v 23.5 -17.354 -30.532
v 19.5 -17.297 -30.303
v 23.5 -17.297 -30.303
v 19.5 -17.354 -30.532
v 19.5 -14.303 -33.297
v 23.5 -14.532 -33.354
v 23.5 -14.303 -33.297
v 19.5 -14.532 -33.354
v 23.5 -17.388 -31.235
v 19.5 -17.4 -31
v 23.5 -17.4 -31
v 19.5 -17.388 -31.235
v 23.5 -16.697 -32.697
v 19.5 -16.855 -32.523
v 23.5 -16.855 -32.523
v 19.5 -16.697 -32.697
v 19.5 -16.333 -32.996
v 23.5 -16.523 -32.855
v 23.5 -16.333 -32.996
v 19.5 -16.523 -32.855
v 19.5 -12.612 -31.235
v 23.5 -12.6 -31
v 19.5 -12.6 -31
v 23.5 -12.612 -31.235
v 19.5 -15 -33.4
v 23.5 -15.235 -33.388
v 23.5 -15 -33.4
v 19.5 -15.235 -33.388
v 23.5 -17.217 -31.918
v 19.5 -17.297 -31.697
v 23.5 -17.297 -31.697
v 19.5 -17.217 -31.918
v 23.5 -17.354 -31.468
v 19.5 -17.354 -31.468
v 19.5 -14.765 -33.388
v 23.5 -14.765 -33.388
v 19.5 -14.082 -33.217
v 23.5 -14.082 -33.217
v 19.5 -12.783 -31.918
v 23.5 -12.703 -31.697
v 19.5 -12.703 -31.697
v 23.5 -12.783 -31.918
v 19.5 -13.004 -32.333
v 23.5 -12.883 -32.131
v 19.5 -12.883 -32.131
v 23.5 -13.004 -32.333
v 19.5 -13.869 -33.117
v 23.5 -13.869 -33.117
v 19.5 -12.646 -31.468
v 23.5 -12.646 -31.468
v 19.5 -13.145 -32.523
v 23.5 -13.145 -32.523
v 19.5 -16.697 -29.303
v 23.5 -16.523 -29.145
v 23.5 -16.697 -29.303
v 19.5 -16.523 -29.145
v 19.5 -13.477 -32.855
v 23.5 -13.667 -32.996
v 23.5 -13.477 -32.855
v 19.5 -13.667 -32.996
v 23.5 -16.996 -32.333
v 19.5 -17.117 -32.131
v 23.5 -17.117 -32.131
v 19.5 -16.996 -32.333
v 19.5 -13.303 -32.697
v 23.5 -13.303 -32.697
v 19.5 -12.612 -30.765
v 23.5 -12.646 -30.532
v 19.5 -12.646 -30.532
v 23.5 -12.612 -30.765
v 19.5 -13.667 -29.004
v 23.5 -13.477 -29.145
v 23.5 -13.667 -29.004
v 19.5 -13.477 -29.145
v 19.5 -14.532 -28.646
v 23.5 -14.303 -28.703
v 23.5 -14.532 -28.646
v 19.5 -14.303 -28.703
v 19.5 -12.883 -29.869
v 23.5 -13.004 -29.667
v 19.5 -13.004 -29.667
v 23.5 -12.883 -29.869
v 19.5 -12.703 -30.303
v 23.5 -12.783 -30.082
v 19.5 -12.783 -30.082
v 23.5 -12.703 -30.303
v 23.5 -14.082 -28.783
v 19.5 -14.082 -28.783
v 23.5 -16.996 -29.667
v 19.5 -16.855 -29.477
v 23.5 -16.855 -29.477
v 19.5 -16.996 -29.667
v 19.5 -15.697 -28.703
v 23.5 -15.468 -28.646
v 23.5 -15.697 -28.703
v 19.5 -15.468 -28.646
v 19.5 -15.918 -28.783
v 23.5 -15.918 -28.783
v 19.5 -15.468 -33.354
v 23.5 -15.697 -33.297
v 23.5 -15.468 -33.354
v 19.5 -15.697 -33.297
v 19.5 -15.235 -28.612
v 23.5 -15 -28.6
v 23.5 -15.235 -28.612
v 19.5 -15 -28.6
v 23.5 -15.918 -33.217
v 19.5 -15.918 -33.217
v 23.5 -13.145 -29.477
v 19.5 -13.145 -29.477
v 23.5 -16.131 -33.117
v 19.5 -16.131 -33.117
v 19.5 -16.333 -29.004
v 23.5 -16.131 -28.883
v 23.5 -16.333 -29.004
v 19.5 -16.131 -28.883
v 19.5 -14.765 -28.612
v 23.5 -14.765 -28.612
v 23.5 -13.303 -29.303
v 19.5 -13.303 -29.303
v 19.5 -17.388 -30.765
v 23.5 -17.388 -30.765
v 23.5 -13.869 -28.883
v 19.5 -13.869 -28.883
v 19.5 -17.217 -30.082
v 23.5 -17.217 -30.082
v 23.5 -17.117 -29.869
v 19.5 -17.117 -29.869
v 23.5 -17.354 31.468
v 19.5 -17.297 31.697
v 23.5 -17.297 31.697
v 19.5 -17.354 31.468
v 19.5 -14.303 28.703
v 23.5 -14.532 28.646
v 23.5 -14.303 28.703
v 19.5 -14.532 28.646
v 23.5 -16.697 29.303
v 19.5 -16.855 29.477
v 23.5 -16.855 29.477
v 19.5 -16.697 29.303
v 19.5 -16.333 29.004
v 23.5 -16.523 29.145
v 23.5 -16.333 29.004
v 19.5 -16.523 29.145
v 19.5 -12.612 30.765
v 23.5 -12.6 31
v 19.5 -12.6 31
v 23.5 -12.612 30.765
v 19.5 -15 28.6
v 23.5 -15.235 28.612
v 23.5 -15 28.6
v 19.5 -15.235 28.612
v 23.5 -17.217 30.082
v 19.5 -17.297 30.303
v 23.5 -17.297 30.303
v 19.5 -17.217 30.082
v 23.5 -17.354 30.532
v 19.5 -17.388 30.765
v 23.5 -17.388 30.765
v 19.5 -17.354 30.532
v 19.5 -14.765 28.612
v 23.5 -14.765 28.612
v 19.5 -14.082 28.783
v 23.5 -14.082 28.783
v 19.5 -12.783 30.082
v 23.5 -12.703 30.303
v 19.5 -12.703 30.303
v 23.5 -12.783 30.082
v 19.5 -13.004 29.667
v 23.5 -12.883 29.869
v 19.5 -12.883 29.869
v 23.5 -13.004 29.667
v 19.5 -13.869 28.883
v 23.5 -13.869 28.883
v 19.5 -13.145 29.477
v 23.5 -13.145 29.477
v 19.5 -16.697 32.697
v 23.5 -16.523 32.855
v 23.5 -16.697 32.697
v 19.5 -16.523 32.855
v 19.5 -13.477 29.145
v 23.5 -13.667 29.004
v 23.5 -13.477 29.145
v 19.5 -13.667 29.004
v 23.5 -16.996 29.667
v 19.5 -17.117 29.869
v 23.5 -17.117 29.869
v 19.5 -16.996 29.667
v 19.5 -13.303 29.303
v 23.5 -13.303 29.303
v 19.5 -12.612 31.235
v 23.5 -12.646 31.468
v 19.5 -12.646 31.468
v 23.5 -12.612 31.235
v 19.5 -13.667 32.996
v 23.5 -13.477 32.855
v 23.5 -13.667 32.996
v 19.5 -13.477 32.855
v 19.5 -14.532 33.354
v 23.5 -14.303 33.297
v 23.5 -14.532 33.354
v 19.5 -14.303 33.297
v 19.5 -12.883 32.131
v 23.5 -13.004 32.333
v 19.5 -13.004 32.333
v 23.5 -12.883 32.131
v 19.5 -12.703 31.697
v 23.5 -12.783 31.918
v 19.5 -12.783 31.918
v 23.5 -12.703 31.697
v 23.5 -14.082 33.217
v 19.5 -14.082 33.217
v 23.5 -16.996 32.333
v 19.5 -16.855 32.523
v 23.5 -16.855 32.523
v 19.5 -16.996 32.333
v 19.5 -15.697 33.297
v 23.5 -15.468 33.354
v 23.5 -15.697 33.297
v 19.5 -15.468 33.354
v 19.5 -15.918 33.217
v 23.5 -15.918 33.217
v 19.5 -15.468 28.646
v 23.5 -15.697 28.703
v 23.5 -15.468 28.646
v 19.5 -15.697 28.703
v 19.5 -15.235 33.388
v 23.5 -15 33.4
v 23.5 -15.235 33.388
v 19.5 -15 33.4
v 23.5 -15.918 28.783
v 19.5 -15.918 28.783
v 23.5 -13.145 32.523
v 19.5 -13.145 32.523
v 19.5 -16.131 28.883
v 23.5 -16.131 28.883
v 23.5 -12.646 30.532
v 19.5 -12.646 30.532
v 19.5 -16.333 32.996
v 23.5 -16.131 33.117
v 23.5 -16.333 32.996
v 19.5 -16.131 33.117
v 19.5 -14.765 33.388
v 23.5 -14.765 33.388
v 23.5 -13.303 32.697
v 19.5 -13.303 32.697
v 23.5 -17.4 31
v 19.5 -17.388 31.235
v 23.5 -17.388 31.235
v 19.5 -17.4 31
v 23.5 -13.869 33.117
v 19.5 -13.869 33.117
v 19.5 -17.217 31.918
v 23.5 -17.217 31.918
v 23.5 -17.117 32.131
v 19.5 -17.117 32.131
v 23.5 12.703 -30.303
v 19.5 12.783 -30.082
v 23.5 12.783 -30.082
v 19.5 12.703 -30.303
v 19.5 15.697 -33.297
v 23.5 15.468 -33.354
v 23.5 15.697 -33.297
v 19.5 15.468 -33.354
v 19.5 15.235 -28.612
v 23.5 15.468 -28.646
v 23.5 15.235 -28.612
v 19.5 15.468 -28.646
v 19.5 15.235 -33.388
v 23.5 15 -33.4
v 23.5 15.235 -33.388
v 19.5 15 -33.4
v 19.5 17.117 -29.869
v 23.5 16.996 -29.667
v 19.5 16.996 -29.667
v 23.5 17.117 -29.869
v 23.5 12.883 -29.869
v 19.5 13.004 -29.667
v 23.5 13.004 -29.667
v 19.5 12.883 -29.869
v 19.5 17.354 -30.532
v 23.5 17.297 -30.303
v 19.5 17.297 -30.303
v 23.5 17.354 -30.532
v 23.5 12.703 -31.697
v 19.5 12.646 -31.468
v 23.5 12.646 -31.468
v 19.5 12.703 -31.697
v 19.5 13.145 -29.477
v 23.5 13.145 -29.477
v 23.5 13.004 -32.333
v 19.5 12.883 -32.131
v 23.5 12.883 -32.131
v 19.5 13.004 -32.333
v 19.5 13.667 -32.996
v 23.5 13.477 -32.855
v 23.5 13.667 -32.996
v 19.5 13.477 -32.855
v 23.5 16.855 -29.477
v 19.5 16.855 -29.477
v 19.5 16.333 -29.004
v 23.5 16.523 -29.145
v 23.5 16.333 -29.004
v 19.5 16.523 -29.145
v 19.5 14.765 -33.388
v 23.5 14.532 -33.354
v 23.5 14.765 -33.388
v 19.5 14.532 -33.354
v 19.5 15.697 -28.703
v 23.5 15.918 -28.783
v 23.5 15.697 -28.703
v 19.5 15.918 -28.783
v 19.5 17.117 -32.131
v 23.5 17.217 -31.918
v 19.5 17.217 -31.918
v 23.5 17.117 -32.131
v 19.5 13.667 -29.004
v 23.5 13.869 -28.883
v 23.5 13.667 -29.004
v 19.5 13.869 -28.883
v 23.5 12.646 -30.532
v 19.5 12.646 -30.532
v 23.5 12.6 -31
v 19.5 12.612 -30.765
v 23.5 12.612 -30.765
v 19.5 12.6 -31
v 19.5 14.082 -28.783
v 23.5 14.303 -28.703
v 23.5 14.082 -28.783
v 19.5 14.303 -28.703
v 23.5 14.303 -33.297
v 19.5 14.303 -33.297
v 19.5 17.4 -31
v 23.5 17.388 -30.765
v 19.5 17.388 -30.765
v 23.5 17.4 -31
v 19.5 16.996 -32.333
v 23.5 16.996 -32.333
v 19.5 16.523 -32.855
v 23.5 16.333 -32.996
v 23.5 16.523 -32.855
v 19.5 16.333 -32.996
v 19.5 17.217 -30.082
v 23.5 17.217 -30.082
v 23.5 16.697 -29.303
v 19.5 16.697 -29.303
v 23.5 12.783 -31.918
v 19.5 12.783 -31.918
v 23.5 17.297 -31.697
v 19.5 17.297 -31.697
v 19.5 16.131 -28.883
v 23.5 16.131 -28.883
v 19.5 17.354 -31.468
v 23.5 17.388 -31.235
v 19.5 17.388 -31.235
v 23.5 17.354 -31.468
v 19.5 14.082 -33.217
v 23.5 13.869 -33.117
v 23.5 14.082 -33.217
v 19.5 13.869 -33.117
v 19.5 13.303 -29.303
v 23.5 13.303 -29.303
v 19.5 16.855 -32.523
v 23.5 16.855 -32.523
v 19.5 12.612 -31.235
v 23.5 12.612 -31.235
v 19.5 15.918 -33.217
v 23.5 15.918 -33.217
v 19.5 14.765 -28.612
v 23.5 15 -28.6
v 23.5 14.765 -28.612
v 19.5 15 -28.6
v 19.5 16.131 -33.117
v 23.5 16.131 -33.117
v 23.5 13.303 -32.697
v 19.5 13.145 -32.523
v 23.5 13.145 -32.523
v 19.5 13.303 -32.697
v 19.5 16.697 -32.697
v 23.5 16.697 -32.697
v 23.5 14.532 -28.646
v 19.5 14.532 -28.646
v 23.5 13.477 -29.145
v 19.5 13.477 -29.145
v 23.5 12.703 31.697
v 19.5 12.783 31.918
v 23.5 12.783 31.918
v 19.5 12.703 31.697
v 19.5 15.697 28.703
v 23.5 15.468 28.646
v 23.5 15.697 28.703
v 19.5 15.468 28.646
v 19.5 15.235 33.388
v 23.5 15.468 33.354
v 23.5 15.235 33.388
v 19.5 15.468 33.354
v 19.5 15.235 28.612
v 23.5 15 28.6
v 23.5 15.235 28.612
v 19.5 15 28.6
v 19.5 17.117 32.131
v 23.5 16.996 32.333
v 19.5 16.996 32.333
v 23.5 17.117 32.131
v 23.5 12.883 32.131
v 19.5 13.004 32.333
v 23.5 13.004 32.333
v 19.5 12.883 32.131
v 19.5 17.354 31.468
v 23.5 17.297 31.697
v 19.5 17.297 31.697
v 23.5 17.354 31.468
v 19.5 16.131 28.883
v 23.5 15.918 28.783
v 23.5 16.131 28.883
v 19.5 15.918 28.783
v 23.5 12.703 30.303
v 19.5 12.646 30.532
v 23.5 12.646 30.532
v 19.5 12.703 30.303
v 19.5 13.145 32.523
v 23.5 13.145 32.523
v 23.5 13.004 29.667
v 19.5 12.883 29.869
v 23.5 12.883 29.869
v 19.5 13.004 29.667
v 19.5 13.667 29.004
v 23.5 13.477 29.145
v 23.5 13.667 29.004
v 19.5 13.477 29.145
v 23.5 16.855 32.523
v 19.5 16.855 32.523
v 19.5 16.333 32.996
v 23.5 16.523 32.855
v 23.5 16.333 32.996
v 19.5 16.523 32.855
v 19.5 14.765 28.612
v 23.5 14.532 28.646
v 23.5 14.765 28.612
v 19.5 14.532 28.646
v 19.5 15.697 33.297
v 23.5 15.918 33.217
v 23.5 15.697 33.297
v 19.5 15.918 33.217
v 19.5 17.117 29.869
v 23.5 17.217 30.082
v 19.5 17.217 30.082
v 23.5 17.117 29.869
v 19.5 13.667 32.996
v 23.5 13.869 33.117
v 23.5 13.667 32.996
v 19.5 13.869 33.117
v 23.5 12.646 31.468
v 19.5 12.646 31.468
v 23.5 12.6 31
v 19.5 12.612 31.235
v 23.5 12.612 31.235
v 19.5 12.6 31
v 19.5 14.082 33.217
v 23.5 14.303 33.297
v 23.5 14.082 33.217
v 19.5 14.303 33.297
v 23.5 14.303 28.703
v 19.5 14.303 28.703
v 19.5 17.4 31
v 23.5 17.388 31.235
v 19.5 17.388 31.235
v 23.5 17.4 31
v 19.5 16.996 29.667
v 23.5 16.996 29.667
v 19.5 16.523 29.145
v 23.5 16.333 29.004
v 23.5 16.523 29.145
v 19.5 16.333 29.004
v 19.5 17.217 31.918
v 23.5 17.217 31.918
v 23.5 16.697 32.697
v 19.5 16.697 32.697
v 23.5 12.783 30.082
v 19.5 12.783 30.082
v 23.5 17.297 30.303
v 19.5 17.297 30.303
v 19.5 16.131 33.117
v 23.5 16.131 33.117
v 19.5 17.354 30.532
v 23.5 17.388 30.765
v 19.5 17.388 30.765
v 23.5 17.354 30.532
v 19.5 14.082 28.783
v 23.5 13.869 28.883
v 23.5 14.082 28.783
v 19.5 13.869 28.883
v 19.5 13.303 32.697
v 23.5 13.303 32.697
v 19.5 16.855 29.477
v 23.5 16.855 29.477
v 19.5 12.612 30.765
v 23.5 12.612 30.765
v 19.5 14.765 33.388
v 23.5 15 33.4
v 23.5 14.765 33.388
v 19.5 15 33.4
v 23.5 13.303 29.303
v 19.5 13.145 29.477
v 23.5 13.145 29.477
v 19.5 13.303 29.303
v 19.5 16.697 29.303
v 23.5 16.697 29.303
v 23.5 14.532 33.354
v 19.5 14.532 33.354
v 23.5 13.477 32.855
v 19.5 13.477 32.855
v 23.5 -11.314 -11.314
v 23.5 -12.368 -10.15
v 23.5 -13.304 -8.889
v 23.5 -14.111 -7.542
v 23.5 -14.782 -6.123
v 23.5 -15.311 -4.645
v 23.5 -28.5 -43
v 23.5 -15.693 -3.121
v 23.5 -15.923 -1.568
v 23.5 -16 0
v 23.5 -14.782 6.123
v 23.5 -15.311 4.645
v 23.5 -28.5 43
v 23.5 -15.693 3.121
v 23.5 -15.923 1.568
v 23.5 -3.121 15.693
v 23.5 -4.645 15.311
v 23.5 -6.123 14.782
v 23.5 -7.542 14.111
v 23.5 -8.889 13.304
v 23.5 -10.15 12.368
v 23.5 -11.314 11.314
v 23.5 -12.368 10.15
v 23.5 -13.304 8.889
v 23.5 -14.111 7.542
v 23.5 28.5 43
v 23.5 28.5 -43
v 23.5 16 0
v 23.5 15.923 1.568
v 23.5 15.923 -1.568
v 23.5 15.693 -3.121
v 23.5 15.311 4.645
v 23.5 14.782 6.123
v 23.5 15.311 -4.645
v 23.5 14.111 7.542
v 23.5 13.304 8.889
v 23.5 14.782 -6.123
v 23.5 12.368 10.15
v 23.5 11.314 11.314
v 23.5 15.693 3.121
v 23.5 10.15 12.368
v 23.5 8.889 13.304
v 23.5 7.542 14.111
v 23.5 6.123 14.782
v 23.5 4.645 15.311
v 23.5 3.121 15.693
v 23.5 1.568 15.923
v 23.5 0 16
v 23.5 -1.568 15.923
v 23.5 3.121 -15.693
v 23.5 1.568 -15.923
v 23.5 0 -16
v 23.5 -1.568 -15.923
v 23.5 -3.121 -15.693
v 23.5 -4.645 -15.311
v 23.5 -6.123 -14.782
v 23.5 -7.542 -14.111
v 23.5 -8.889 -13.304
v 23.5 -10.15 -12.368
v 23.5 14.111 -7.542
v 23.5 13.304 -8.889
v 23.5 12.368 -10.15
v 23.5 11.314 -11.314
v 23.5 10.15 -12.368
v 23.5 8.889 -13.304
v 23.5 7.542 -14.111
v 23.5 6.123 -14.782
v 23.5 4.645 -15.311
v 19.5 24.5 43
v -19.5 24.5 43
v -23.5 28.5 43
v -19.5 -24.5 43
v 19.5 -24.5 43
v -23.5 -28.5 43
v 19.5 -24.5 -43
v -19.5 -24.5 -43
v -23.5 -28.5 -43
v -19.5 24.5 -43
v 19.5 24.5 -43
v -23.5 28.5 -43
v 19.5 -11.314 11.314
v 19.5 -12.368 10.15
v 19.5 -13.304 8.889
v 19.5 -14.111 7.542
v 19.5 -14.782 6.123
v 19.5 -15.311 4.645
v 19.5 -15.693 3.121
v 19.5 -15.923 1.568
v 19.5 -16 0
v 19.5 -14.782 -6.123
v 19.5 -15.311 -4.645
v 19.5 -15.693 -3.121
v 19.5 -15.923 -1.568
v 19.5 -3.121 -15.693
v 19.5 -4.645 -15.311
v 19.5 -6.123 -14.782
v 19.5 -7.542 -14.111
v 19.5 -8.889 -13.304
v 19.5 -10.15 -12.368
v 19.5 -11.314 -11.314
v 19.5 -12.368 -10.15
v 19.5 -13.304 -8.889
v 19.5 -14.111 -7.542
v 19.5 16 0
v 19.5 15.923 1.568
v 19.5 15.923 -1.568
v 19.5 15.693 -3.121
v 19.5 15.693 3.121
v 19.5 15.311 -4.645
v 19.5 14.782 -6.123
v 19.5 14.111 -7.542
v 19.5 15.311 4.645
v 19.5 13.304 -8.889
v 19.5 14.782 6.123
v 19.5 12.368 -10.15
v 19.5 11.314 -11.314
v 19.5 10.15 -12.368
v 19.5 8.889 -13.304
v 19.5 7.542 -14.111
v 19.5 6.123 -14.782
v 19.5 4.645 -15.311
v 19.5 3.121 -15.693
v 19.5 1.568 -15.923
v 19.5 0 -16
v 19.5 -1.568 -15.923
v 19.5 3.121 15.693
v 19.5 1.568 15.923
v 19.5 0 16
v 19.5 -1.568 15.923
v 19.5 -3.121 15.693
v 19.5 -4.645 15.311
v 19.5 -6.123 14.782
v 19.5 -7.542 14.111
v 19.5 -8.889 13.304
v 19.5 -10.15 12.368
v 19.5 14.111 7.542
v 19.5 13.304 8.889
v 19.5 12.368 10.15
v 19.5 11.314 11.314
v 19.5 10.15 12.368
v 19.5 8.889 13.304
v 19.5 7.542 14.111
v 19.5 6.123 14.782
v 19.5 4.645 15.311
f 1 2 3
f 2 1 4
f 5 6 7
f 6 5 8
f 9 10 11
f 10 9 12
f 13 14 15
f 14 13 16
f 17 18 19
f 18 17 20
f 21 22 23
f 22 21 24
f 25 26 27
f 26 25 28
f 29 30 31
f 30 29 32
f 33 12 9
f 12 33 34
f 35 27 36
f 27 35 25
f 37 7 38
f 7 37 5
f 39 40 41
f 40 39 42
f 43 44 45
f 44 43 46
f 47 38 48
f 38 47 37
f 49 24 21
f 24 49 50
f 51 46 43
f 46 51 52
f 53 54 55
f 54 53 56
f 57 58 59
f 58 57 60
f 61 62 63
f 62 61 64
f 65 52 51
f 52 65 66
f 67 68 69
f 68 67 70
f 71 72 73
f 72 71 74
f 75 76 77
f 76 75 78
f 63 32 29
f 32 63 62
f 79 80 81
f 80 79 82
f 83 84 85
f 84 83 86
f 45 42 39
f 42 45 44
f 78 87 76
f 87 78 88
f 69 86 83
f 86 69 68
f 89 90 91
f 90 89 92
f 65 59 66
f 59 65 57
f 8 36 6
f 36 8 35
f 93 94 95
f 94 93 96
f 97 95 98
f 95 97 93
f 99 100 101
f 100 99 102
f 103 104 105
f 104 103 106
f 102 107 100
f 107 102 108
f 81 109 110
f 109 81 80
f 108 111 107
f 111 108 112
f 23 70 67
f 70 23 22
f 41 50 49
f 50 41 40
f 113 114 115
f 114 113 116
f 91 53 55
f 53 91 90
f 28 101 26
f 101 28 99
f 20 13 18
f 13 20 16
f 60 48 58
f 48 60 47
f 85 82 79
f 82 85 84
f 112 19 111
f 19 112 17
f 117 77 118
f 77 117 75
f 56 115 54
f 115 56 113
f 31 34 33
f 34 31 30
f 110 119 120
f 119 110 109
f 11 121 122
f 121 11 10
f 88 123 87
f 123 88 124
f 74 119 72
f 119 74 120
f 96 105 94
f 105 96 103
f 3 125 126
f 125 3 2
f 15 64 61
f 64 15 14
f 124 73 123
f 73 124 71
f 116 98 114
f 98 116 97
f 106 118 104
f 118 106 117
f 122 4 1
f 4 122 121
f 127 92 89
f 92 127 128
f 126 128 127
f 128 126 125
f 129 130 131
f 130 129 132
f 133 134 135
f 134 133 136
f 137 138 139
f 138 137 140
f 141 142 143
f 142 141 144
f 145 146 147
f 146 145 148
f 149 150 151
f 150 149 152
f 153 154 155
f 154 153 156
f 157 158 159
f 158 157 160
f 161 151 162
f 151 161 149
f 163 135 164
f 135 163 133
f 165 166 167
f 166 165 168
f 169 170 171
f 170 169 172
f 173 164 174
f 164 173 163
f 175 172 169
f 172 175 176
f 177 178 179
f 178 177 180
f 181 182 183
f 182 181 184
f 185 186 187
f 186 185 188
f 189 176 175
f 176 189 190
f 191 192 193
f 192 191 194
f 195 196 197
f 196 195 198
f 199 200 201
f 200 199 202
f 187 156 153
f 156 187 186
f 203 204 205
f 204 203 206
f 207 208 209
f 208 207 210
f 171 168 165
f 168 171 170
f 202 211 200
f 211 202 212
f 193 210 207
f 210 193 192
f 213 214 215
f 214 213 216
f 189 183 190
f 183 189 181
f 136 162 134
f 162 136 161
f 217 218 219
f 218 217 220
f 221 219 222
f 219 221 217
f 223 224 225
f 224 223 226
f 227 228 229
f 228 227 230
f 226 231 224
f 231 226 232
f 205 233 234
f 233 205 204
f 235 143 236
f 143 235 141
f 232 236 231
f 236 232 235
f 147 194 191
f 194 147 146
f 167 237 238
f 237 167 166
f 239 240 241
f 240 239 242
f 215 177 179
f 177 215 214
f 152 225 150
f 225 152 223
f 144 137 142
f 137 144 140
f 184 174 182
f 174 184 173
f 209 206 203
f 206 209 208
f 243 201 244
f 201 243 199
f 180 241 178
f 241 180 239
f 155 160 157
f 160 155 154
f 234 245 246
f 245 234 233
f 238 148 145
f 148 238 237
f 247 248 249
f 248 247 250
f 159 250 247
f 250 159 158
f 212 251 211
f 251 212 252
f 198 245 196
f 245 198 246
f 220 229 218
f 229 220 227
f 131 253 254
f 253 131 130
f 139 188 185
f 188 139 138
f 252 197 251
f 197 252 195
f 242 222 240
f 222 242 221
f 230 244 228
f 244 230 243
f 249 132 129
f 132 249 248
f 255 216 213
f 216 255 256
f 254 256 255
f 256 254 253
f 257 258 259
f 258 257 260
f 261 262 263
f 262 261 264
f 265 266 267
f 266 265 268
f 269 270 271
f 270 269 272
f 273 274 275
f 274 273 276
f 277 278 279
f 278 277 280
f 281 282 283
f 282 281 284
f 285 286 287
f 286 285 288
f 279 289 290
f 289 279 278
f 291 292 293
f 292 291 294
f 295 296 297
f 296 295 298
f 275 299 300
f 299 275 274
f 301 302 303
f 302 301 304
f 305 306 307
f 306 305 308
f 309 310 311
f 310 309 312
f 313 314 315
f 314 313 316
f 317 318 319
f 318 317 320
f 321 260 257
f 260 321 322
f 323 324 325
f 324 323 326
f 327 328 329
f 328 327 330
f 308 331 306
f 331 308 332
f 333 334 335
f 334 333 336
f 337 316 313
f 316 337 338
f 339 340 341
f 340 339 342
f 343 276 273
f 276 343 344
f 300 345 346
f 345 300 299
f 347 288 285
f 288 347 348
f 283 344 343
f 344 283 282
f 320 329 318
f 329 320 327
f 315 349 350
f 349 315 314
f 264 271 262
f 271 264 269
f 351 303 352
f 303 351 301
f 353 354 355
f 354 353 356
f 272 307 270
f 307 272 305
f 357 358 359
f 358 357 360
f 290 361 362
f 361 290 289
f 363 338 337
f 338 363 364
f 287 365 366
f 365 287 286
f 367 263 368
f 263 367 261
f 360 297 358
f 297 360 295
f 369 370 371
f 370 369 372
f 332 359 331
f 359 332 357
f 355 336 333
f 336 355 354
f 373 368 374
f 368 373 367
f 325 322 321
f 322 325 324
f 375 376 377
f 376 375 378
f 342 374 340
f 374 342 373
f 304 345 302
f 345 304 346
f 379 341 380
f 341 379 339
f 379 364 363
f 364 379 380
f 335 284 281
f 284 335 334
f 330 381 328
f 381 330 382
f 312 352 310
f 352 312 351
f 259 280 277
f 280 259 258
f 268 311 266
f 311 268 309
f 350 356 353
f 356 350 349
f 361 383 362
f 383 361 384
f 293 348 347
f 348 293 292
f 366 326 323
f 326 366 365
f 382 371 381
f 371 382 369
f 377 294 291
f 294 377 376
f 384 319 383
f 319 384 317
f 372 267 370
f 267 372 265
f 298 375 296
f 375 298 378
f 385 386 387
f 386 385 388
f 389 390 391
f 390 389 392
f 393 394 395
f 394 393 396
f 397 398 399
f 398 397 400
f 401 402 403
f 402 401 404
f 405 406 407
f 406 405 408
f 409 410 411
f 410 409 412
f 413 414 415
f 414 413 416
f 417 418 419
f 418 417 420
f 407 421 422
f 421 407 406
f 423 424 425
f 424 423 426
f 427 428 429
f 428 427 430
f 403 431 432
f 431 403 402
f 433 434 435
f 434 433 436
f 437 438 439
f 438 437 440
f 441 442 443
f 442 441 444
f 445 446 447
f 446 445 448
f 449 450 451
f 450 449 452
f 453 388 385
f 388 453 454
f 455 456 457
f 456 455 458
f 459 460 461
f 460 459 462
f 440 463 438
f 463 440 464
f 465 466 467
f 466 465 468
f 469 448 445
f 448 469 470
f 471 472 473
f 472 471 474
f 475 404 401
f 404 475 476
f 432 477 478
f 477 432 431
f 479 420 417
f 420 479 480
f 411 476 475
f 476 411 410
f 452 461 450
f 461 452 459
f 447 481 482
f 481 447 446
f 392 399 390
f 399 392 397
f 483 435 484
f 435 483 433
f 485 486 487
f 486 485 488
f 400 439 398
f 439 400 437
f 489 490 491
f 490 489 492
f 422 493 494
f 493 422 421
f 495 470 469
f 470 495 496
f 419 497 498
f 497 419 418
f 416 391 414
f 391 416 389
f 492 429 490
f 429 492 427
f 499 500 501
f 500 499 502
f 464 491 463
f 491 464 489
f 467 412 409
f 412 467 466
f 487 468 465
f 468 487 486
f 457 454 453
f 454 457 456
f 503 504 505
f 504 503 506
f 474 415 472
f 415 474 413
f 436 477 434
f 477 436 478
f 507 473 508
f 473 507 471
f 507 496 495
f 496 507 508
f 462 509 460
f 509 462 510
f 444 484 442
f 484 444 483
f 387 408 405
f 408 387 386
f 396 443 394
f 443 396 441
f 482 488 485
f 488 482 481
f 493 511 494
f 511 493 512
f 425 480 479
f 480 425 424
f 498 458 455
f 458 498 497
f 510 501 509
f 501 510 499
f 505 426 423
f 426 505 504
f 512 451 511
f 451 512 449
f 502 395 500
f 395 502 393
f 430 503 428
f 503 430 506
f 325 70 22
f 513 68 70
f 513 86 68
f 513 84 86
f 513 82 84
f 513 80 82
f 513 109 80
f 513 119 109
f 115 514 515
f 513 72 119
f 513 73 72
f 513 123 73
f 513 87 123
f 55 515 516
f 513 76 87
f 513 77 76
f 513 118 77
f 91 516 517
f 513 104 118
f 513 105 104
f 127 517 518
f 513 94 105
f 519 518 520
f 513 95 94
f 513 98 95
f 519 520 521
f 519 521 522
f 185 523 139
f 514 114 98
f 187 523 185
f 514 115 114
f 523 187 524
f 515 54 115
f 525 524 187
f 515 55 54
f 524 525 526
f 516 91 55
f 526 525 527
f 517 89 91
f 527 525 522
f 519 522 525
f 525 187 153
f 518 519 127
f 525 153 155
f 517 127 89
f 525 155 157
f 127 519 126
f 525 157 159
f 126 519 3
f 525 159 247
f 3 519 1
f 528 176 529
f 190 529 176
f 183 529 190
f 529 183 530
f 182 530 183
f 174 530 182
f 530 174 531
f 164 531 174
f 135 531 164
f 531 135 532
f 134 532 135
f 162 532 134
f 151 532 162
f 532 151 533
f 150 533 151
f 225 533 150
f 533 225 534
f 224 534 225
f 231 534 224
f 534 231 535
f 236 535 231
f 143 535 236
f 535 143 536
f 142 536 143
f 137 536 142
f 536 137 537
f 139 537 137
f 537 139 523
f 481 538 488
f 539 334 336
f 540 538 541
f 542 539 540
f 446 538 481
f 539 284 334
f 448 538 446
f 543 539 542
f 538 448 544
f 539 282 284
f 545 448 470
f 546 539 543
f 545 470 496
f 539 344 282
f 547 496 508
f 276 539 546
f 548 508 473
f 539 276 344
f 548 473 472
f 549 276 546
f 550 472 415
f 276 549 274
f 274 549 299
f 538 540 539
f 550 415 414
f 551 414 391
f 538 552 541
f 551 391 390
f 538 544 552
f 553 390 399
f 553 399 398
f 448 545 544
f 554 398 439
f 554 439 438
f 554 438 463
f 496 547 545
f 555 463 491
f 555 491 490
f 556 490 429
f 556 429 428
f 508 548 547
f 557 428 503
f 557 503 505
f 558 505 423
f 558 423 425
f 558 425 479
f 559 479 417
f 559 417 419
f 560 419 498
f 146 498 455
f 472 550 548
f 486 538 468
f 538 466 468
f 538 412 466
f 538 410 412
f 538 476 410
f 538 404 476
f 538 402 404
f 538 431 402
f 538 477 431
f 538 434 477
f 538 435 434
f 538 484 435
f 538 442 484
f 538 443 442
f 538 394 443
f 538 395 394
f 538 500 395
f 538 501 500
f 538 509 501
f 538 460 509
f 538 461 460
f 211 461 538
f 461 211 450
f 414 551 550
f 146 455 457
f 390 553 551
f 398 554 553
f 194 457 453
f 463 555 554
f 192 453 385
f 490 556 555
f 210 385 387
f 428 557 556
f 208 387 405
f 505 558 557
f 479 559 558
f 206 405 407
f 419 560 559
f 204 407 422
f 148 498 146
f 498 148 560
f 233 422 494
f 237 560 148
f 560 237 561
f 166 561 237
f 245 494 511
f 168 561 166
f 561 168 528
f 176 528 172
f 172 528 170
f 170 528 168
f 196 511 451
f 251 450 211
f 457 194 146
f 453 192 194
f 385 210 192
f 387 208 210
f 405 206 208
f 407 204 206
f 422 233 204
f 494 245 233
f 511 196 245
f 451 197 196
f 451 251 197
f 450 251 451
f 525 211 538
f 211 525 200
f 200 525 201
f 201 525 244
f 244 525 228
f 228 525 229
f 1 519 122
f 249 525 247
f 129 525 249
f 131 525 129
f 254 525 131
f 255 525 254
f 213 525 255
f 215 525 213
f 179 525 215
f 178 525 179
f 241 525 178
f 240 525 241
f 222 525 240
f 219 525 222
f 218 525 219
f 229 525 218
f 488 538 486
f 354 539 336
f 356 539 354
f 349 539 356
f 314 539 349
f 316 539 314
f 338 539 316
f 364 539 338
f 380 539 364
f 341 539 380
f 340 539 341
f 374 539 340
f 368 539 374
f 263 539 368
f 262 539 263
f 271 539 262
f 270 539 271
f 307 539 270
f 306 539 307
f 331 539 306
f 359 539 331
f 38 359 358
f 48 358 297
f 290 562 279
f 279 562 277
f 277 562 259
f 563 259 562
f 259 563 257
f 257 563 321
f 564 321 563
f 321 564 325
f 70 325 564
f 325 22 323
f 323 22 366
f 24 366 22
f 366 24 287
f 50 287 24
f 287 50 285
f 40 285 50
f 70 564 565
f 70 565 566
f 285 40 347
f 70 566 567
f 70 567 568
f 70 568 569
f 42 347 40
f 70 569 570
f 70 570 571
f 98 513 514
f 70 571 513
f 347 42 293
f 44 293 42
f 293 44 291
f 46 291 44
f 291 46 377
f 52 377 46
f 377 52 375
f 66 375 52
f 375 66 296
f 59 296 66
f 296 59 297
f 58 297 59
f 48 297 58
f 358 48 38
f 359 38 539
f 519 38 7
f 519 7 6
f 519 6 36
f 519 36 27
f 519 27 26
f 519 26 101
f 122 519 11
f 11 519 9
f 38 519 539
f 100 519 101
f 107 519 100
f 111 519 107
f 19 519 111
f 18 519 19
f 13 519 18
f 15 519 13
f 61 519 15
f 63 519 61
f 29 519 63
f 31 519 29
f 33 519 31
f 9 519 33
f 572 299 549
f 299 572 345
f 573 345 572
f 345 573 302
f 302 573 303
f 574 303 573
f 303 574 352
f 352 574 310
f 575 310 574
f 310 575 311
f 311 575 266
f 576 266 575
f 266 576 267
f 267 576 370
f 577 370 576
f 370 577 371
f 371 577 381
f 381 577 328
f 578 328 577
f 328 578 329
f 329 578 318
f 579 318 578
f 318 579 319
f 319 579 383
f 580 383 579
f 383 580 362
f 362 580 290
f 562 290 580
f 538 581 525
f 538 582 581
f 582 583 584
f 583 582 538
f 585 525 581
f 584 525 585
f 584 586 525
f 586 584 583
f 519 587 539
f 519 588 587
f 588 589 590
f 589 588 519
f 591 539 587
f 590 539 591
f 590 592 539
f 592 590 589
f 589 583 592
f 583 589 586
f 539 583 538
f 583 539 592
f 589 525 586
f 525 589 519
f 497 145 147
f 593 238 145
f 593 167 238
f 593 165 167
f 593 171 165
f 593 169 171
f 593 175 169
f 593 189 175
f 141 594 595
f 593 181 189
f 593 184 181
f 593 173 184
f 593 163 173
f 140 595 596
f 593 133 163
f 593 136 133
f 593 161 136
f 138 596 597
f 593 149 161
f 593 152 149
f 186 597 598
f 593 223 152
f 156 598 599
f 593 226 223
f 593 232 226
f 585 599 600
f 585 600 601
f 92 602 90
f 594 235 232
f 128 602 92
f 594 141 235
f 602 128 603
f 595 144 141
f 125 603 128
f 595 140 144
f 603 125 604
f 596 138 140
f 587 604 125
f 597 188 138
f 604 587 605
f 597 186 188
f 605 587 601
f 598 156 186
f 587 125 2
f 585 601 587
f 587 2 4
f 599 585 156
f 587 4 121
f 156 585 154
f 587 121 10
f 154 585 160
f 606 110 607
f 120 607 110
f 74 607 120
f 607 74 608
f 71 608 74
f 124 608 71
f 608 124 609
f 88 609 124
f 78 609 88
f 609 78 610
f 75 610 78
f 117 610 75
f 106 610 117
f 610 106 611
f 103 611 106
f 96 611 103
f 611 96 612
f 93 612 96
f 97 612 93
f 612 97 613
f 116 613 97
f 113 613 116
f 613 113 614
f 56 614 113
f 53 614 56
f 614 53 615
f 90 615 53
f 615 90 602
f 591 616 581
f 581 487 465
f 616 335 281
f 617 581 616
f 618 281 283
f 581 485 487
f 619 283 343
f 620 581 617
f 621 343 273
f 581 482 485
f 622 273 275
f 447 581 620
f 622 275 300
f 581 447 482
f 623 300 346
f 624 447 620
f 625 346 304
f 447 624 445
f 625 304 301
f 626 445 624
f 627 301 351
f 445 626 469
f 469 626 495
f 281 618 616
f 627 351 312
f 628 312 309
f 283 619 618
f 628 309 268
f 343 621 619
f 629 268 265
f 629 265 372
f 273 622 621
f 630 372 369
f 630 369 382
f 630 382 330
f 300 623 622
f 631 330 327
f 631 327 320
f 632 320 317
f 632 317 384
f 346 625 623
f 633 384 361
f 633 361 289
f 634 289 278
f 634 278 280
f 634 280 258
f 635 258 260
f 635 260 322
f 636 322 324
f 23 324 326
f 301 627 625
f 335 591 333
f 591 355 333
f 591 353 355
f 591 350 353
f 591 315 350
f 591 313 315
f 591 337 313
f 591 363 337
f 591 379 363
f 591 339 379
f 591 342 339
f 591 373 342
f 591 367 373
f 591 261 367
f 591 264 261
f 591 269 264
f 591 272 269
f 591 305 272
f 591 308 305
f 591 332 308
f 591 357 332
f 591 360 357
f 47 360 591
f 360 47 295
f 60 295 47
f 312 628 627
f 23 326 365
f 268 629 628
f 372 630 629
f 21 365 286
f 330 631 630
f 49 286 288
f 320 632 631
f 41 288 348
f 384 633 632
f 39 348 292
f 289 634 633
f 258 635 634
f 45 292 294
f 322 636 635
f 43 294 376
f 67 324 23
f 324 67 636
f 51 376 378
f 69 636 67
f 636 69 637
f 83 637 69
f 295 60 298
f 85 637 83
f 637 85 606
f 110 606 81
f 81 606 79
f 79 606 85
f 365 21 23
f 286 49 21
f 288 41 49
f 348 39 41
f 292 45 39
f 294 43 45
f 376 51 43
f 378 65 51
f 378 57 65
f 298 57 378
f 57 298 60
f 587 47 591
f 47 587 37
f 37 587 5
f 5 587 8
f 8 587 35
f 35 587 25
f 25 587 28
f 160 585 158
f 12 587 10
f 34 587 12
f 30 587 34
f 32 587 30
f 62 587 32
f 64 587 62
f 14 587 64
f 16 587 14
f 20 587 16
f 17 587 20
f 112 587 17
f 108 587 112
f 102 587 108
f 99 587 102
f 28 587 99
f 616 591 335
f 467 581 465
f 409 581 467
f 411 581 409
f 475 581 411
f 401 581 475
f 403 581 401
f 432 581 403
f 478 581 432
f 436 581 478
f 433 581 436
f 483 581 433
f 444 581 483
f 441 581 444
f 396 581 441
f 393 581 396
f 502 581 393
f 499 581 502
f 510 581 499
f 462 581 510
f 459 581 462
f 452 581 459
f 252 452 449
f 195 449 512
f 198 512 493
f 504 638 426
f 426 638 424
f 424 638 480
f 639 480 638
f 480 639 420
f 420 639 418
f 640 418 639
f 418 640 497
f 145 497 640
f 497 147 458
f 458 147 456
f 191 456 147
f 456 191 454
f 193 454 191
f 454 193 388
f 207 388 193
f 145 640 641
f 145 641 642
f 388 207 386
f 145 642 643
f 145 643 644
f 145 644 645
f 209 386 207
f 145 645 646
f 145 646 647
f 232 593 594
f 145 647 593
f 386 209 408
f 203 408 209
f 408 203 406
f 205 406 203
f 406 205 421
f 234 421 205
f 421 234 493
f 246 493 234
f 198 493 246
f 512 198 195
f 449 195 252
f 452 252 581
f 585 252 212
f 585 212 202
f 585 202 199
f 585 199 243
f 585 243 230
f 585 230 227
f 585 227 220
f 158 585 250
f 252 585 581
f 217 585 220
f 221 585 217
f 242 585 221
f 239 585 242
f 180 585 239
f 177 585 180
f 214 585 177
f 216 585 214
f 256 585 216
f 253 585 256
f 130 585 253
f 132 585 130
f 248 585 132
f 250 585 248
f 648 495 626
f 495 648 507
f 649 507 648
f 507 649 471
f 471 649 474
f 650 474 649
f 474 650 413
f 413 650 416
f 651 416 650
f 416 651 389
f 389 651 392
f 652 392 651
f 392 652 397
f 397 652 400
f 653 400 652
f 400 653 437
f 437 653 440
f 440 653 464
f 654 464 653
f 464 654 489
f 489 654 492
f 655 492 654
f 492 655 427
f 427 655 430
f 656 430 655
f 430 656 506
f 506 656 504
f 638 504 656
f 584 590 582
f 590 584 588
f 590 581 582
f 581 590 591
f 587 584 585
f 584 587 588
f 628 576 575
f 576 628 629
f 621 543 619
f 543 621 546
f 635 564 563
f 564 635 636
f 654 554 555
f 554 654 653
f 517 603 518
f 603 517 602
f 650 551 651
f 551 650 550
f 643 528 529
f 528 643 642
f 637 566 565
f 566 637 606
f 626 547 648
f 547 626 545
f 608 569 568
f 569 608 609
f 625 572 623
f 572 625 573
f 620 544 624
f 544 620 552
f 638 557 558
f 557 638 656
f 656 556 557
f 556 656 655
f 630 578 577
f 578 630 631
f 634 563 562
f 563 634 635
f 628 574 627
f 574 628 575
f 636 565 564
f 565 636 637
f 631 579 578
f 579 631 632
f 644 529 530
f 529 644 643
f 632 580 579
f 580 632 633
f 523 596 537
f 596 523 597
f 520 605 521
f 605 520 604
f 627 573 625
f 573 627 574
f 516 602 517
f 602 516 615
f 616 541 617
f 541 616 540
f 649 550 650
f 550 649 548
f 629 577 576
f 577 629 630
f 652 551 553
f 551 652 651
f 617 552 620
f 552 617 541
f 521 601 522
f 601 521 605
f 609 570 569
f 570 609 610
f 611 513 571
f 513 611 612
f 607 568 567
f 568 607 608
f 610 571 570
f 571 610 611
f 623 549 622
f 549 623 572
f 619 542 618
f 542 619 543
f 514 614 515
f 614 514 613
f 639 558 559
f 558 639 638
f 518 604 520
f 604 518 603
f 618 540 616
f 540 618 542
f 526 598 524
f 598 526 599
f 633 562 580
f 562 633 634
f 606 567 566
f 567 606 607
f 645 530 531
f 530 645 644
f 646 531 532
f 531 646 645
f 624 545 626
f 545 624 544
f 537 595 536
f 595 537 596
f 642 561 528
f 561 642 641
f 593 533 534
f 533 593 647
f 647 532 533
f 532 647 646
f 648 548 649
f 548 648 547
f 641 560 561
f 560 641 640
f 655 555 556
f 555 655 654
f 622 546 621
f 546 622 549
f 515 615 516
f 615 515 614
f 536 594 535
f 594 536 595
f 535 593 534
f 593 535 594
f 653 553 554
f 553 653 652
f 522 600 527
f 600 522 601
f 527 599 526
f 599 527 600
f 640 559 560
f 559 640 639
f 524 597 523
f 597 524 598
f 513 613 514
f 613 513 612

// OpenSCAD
// =====================================================================
//  Wrap-around bracket for the torque hinge (50 x 76 mm plate)
//
//  Slips over a rectangular wood beam. The 4 hinge screws pass through
//  the bracket wall and bite into the wood, so the hinge + bracket are
//  locked in one step.
//
//  Hinge interface taken from the drawing:
//    - plate 50 x 76
//    - 4 screws on a 30 x 62 pattern, 4.5 clearance
//    - central 32 dia boss recess, 12 dia center hole
//
//  Holes sit on a 30 x 62 pattern -> they are 15 mm / 31 mm from center.
// =====================================================================

/* [Wood] */
wood_width  = 49;    // across the face the hinge mounts on
wood_depth  = 39;    // thickness, away from that face
clearance   = 0.0;   // slip-fit gap around the wood

/* [Bracket] */
wall        = 4;     // wall thickness
length      = 86;    // along the wood (must cover the 76 plate)

/* [Hinge mounting] */
plate_w     = 50;    // hinge plate width  (reference / sanity check)
plate_h     = 76;    // hinge plate length (reference / sanity check)
hole_dx     = 30;    // screw spacing across the face
hole_dz     = 62;    // screw spacing along the length
hole_d      = 4.8;   // M4 clearance hole
hub_d       = 32;    // central boss recess diameter
hub_depth   = 5;     // boss recess depth
center_d    = 12;    // central through hole

/* [View] */
part        = "assembly";  // [bracket, wood, assembly]
show_wood   = false;

$fn = 64;

// ---------------------------------------------------------------------
outer_x = wood_depth + 2 * wall;
outer_y = wood_width + 2 * wall;

module wood() {
    // the real beam is 2 m long; shortened here just so the fit is visible
    color("burlywood", 0.75)
        cube([wood_depth, wood_width, length + 120], center = true);
}

module bracket() {
    difference() {
        // outer shell
        cube([outer_x, outer_y, length], center = true);

        // wood cavity, open both ends
        cube([wood_depth + clearance,
              wood_width + clearance,
              length + 2], center = true);

        // 4 screw clearance holes through the mounting wall (+X)
        for (sy = [-1, 1], sz = [-1, 1])
            translate([outer_x / 2, sy * hole_dx / 2, sz * hole_dz / 2])
                rotate([0, 90, 0])
                    cylinder(d = hole_d, h = wall * 3, center = true);

        // central boss recess
        translate([outer_x / 2 - hub_depth, 0, 0])
            rotate([0, 90, 0])
                cylinder(d = hub_d, h = hub_depth * 2 + 1);

        // central through hole
        translate([outer_x / 2, 0, 0])
            rotate([0, 90, 0])
                cylinder(d = center_d, h = wall * 3, center = true);
    }
}

// ---------------------------------------------------------------------
if (part == "wood") {
    wood();
} else if (part == "bracket") {
    bracket();
} else {
    bracket();
    if (show_wood) wood();
}
